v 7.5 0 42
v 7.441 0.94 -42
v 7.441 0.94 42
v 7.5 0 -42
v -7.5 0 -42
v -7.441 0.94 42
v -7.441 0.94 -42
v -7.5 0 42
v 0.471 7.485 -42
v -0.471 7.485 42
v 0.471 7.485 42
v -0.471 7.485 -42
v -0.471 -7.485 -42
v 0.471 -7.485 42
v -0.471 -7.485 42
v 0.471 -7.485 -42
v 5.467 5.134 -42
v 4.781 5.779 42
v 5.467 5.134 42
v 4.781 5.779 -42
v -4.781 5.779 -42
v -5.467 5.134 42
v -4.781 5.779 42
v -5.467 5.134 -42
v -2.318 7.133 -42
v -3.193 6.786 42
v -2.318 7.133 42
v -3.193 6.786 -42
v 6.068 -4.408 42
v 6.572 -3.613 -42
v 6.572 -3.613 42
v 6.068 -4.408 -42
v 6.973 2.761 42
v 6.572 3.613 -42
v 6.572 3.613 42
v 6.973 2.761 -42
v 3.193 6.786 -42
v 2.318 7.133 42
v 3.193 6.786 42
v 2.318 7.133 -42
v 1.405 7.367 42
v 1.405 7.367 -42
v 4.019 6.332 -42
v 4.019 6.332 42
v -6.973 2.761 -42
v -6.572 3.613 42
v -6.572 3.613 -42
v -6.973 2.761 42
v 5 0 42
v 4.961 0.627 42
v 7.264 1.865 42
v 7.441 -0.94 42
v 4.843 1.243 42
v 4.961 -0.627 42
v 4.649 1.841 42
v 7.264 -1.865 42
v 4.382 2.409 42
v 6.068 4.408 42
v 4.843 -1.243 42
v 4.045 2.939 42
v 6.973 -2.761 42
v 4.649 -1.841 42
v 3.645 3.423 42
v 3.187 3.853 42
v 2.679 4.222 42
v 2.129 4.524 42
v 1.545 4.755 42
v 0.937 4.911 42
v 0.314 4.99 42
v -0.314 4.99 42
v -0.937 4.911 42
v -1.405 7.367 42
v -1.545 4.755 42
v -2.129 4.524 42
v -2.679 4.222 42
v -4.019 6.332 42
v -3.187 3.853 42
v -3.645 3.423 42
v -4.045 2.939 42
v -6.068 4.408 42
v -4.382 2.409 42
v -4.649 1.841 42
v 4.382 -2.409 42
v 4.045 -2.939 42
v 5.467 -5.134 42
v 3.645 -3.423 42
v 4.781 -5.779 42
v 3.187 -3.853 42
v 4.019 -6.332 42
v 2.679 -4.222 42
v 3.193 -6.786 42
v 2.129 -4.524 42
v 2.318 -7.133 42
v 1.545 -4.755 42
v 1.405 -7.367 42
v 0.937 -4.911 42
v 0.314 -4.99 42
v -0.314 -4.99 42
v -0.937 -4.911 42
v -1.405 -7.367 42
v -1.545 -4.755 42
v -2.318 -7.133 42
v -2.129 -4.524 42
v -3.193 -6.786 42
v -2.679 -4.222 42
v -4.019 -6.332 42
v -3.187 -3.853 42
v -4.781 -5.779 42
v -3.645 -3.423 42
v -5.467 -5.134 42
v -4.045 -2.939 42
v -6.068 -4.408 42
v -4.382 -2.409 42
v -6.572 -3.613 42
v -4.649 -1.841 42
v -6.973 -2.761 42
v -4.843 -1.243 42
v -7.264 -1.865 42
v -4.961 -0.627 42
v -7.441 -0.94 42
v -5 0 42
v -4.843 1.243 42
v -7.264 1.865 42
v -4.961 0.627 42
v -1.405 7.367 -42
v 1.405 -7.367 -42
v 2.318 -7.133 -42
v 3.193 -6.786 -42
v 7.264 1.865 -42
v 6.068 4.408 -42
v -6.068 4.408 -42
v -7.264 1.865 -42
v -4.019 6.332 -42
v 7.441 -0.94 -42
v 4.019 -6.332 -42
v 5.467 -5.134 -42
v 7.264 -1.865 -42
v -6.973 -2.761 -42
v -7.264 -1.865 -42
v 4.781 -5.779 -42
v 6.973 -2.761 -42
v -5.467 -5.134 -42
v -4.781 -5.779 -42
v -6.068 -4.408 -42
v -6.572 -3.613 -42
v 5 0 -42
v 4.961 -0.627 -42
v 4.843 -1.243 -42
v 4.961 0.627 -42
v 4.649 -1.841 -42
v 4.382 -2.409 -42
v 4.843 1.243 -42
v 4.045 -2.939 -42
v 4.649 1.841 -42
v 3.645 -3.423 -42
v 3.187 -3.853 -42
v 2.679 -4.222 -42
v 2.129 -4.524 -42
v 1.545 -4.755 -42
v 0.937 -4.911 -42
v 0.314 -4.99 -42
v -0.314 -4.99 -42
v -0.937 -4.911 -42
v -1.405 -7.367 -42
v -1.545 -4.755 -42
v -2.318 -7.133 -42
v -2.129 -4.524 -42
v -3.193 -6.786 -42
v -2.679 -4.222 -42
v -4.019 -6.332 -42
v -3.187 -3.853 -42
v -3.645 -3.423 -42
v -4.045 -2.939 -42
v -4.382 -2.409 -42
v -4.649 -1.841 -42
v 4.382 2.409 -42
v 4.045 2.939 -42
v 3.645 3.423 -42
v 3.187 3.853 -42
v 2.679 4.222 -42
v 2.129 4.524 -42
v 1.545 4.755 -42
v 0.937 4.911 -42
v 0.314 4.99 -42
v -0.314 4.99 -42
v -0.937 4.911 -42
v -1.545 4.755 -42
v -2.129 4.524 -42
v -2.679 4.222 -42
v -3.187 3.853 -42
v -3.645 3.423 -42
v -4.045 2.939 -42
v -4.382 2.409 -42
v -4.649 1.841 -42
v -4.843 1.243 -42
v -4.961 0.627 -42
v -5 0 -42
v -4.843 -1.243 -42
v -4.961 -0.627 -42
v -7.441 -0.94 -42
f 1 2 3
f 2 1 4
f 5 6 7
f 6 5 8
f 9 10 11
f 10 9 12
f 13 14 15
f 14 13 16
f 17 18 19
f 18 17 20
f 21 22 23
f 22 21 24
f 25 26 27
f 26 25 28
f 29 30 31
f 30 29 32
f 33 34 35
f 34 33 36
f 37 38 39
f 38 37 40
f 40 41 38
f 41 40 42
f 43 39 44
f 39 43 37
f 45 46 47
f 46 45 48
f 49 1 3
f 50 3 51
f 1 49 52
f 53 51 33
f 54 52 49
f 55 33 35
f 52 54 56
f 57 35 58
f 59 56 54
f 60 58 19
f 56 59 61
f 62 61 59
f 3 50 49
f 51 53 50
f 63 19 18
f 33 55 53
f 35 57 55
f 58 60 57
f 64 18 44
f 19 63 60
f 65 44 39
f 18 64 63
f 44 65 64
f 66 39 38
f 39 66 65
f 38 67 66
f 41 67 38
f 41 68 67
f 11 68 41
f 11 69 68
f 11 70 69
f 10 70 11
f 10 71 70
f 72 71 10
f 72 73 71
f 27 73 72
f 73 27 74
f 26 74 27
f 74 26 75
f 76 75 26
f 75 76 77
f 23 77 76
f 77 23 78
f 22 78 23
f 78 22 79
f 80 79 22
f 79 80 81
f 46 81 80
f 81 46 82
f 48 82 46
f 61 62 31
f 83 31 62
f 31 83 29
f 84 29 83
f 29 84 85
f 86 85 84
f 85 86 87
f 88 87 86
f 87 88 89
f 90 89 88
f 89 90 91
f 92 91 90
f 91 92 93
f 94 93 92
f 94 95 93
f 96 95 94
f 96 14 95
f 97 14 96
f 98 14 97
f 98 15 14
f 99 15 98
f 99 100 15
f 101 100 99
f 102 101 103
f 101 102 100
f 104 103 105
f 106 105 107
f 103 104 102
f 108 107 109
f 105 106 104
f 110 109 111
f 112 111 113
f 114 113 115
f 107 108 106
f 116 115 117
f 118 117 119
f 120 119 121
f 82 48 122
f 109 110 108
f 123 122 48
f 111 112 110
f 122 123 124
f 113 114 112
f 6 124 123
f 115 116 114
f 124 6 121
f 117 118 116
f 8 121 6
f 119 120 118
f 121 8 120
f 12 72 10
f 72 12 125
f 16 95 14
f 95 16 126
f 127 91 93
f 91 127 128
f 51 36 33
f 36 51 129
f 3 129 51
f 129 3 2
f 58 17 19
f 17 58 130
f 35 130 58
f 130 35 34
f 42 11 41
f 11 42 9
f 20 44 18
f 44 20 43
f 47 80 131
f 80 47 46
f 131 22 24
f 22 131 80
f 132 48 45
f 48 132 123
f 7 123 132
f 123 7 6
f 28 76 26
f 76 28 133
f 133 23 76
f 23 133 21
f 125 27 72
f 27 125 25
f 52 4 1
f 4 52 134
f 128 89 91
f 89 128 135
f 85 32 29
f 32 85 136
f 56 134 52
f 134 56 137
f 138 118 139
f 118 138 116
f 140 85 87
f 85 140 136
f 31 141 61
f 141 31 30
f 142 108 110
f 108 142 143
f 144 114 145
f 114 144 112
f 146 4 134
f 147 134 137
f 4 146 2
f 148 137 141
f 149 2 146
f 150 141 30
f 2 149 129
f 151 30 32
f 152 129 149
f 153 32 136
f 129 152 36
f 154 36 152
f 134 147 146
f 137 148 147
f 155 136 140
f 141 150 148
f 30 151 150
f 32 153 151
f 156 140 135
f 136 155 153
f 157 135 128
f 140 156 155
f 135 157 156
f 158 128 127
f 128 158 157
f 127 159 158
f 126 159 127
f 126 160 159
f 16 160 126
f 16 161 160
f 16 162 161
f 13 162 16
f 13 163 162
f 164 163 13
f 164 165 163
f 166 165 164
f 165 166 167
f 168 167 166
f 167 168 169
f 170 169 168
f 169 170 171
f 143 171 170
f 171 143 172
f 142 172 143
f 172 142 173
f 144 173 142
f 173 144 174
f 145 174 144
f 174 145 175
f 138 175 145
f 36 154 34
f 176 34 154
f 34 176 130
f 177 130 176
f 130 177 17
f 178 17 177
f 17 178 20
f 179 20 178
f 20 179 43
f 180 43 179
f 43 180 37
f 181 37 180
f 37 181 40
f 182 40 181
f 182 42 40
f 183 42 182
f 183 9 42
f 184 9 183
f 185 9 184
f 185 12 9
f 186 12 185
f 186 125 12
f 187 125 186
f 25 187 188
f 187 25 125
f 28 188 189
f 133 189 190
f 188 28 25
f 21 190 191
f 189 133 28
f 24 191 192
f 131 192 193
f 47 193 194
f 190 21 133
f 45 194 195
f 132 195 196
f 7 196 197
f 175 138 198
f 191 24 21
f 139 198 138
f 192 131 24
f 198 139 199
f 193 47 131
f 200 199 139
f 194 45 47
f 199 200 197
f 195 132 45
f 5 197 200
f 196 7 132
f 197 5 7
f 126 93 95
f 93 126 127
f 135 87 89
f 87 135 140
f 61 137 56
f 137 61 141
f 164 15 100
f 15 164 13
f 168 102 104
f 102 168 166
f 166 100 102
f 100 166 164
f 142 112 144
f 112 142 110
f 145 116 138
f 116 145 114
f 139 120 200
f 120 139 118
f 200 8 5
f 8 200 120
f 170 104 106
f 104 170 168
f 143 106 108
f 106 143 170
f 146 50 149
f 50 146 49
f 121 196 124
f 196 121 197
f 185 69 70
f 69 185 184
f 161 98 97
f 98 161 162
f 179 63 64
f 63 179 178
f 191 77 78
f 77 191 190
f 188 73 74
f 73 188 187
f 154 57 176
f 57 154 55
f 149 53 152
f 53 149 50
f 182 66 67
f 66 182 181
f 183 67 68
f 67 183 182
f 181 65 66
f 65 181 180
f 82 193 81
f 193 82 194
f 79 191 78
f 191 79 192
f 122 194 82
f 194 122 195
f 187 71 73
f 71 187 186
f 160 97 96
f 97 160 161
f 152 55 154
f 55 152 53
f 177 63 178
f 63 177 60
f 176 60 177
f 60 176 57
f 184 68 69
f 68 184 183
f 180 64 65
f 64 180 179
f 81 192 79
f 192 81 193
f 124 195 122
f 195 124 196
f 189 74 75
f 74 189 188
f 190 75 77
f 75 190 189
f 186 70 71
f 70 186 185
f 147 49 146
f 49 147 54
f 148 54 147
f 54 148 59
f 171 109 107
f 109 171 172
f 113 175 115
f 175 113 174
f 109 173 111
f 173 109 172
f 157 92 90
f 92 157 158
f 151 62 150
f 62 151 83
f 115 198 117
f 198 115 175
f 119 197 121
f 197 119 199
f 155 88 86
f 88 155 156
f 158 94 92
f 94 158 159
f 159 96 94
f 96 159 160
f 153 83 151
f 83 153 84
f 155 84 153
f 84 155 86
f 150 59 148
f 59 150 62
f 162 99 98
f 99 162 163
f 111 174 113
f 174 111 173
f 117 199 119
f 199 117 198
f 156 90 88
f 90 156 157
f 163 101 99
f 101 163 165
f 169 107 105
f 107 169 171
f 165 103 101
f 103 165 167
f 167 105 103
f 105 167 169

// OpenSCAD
$fn = 50;


difference() {
	union() {
		translate(v = [0, 0, -42.0000000000]) {
			cylinder(h = 84, r = 7.5000000000);
		}
	}
	union() {
		translate(v = [0, 0, -100.0000000000]) {
			cylinder(h = 200, r = 5.0000000000);
		}
	}
}
